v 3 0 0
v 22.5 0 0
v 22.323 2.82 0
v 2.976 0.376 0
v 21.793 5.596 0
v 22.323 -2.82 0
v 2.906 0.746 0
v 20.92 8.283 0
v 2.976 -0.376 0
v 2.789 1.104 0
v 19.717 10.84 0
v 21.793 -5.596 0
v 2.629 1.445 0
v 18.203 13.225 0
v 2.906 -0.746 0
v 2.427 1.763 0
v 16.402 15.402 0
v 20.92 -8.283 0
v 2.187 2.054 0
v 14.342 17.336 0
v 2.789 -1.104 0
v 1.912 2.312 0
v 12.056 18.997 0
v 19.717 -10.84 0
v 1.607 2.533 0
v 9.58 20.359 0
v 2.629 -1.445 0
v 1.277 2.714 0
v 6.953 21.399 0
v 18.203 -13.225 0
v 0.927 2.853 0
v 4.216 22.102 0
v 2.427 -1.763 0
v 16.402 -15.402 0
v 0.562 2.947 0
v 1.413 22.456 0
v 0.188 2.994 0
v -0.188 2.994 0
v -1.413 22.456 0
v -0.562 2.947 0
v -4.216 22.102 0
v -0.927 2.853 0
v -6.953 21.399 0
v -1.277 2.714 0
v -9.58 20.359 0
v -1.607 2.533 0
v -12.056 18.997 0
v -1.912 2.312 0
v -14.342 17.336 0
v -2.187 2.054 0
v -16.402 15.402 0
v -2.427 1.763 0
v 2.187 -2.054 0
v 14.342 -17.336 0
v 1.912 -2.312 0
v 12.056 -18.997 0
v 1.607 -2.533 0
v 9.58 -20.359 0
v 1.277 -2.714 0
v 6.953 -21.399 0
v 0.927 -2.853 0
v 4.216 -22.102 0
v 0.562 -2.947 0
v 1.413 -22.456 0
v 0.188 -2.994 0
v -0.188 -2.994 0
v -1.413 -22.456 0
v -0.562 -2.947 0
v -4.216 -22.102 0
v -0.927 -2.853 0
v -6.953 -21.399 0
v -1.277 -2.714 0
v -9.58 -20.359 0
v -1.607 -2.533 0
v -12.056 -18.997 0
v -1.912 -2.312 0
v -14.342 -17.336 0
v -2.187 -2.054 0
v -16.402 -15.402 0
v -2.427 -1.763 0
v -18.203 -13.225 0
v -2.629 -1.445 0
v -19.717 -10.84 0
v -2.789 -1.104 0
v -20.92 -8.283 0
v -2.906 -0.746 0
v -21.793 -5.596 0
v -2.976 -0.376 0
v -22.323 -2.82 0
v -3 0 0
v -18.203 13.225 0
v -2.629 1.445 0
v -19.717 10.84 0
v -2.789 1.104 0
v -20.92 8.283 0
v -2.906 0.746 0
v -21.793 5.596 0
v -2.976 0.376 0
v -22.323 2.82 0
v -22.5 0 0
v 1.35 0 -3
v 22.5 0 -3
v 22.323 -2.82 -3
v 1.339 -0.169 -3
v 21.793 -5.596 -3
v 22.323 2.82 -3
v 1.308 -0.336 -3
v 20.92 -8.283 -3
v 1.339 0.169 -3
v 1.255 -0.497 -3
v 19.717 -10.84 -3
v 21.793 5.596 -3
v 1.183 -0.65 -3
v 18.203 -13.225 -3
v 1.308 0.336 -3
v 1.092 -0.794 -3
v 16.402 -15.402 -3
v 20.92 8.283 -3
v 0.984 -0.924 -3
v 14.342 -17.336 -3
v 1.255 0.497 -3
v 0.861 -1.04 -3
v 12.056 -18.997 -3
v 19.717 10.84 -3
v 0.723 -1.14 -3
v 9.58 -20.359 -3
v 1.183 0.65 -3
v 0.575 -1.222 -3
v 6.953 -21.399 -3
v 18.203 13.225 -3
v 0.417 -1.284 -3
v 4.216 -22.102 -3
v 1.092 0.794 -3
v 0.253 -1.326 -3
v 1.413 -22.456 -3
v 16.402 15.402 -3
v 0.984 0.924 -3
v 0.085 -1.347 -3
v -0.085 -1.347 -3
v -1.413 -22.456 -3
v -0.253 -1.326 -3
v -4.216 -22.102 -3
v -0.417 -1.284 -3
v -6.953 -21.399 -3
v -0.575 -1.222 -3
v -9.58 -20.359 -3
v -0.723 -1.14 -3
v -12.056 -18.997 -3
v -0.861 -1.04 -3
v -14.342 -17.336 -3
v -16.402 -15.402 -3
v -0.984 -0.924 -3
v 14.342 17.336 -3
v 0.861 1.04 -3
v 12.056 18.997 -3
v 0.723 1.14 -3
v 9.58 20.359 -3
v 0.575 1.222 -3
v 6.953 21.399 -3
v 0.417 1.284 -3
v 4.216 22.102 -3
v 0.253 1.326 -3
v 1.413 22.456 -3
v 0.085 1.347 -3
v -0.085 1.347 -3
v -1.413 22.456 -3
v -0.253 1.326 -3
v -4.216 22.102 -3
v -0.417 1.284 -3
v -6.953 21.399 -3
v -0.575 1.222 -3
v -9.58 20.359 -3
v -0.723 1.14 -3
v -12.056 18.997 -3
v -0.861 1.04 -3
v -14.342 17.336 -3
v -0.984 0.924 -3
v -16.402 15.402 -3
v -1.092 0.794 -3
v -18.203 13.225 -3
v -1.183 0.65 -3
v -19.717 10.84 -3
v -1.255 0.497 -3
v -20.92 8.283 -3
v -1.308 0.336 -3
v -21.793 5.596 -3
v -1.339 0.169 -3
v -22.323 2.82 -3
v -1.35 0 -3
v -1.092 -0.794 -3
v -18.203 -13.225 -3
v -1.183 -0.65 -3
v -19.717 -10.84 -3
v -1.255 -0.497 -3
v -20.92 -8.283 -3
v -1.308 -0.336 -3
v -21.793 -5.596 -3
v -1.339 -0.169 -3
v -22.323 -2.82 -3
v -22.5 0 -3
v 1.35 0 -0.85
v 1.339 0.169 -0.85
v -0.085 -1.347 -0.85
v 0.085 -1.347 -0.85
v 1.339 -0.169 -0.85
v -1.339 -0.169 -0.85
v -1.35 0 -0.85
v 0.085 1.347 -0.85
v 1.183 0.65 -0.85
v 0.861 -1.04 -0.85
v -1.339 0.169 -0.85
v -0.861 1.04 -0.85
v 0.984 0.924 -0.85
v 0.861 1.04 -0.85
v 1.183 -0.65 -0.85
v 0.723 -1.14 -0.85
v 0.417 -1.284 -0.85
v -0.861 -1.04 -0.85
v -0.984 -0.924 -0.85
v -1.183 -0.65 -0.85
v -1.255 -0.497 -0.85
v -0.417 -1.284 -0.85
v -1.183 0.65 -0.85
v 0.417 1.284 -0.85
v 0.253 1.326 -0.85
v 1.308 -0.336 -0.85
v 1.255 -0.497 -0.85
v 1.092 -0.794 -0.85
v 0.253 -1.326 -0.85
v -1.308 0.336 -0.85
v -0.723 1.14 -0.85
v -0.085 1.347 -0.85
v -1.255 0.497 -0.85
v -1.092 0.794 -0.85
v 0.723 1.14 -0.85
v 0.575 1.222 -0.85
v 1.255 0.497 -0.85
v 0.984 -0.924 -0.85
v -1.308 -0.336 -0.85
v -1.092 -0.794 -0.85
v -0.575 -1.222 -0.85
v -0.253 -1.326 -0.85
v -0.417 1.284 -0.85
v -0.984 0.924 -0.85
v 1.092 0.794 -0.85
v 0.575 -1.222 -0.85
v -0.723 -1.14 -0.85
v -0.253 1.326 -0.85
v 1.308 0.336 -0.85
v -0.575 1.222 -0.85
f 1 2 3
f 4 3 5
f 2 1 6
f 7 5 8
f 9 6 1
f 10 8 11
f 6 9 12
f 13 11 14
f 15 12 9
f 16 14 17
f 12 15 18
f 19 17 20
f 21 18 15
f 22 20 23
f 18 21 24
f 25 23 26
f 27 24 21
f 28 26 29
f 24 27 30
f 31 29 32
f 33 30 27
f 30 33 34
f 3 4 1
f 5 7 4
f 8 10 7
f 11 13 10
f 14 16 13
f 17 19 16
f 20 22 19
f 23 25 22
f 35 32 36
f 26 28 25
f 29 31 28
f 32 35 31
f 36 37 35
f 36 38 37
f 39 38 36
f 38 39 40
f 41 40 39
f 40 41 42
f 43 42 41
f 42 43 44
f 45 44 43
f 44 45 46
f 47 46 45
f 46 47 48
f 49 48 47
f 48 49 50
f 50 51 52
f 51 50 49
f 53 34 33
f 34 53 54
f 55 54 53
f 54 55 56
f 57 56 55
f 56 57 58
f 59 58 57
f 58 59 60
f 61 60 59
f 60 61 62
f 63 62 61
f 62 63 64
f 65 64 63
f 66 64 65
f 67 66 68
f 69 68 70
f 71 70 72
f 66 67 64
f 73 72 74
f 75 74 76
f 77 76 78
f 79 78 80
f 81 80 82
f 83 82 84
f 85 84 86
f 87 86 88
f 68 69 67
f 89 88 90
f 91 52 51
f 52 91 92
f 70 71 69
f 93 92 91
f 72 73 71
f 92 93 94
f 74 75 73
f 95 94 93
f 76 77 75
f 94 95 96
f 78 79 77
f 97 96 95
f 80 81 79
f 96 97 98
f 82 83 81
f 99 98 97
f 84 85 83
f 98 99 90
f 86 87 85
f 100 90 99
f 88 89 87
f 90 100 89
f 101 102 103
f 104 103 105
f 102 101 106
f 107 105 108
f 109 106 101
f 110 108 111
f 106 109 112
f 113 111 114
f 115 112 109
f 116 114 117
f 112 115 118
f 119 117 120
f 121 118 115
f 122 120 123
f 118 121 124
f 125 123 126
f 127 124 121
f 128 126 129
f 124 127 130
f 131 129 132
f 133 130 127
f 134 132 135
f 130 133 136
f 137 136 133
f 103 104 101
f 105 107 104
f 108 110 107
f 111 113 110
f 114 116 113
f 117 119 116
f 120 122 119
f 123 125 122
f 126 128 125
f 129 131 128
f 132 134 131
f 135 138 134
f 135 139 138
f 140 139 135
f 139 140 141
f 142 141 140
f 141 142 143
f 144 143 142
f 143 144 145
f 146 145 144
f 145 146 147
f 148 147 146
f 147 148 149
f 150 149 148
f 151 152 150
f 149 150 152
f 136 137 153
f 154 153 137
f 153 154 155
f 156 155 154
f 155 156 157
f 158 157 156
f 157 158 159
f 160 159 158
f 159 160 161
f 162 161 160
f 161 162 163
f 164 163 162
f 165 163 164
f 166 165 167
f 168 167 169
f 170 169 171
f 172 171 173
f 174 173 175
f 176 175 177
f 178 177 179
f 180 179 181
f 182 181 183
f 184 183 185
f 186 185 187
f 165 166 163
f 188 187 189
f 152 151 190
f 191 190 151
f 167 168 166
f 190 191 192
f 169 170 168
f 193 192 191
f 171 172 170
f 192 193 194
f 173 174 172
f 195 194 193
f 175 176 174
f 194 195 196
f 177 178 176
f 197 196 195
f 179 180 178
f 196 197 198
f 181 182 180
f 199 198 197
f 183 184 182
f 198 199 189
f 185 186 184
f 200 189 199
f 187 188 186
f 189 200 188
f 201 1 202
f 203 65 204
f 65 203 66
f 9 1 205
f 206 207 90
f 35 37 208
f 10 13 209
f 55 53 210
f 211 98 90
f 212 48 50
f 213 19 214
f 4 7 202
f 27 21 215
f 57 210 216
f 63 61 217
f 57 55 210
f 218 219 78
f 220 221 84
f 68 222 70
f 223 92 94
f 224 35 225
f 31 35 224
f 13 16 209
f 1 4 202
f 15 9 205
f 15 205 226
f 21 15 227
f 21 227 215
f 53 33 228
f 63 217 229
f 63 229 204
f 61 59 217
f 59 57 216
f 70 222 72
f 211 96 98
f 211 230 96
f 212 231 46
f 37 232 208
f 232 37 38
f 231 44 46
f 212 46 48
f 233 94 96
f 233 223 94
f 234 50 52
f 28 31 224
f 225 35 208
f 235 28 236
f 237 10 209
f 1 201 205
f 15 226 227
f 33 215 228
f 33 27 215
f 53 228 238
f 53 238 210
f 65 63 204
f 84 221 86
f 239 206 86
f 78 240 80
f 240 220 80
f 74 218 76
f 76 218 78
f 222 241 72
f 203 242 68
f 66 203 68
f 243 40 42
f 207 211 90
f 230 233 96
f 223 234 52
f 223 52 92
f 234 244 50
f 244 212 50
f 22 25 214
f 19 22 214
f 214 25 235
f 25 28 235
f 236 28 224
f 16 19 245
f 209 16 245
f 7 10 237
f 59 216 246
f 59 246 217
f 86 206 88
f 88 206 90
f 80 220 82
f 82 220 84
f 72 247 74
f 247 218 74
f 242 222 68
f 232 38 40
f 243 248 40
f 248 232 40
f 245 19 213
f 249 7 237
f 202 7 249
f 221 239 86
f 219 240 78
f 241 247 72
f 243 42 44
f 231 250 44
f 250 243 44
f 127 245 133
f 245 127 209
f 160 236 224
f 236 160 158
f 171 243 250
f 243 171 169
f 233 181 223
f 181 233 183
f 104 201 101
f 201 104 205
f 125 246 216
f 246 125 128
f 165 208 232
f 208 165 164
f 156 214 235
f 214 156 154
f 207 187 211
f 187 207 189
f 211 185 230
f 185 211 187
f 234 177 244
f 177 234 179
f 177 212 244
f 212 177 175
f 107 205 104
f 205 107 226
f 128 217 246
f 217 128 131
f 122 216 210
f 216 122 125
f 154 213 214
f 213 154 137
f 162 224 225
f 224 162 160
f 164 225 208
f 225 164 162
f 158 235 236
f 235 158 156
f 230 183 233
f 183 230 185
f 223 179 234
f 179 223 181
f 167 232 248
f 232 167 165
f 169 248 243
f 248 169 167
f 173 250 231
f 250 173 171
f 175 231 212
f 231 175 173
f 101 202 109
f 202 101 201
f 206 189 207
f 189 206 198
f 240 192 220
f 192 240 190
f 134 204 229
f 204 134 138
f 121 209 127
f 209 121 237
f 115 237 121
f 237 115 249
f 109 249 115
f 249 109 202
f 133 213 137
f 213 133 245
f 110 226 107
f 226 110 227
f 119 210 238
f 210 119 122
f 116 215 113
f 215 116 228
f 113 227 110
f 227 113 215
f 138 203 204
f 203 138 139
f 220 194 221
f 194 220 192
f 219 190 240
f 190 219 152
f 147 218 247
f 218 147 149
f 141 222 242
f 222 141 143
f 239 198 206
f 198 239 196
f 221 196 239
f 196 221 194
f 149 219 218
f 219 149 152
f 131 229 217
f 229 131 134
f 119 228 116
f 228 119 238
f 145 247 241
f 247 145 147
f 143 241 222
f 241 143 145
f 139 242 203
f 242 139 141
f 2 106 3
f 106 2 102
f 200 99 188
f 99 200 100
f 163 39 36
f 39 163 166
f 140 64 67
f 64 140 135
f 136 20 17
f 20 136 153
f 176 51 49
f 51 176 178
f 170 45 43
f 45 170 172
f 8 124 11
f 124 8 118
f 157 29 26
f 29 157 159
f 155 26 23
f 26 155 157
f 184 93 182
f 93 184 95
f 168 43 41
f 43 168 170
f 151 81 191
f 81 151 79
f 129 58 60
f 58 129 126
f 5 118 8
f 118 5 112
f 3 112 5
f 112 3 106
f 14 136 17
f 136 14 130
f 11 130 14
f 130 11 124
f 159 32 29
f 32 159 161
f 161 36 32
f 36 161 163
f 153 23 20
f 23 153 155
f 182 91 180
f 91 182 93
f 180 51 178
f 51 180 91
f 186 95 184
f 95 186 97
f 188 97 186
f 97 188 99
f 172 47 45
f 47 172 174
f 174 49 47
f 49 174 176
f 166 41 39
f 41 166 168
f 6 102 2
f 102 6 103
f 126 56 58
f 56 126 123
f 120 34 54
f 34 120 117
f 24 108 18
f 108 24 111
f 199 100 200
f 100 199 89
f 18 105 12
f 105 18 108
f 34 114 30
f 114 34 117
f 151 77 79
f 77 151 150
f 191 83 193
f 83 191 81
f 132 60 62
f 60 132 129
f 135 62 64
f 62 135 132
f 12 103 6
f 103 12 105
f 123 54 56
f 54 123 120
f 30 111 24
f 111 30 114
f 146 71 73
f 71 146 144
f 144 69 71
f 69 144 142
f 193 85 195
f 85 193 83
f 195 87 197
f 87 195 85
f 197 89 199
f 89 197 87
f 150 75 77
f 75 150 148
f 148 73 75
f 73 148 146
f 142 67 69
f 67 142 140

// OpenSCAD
$fn = 50;


difference() {
	union() {
		translate(v = [0, 0, -3.0000000000]) {
			cylinder(h = 3, r = 22.5000000000);
		}
	}
	union() {
		translate(v = [0, 0, 0]) {
			rotate(a = [0, 0, 0]) {
				difference() {
					union() {
						translate(v = [0, 0, -3.0000000000]) {
							cylinder(h = 3, r = 1.0000000000);
						}
						translate(v = [0, 0, -0.8500000000]) {
							cylinder(h = 0.8500000000, r1 = 1.3500000000, r2 = 3.0000000000);
						}
						translate(v = [0, 0, -3.0000000000]) {
							cylinder(h = 3, r = 1.3500000000);
						}
						translate(v = [0, 0, -3.0000000000]) {
							cylinder(h = 3, r = 1.0000000000);
						}
					}
					union();
				}
			}
		}
	}
}
